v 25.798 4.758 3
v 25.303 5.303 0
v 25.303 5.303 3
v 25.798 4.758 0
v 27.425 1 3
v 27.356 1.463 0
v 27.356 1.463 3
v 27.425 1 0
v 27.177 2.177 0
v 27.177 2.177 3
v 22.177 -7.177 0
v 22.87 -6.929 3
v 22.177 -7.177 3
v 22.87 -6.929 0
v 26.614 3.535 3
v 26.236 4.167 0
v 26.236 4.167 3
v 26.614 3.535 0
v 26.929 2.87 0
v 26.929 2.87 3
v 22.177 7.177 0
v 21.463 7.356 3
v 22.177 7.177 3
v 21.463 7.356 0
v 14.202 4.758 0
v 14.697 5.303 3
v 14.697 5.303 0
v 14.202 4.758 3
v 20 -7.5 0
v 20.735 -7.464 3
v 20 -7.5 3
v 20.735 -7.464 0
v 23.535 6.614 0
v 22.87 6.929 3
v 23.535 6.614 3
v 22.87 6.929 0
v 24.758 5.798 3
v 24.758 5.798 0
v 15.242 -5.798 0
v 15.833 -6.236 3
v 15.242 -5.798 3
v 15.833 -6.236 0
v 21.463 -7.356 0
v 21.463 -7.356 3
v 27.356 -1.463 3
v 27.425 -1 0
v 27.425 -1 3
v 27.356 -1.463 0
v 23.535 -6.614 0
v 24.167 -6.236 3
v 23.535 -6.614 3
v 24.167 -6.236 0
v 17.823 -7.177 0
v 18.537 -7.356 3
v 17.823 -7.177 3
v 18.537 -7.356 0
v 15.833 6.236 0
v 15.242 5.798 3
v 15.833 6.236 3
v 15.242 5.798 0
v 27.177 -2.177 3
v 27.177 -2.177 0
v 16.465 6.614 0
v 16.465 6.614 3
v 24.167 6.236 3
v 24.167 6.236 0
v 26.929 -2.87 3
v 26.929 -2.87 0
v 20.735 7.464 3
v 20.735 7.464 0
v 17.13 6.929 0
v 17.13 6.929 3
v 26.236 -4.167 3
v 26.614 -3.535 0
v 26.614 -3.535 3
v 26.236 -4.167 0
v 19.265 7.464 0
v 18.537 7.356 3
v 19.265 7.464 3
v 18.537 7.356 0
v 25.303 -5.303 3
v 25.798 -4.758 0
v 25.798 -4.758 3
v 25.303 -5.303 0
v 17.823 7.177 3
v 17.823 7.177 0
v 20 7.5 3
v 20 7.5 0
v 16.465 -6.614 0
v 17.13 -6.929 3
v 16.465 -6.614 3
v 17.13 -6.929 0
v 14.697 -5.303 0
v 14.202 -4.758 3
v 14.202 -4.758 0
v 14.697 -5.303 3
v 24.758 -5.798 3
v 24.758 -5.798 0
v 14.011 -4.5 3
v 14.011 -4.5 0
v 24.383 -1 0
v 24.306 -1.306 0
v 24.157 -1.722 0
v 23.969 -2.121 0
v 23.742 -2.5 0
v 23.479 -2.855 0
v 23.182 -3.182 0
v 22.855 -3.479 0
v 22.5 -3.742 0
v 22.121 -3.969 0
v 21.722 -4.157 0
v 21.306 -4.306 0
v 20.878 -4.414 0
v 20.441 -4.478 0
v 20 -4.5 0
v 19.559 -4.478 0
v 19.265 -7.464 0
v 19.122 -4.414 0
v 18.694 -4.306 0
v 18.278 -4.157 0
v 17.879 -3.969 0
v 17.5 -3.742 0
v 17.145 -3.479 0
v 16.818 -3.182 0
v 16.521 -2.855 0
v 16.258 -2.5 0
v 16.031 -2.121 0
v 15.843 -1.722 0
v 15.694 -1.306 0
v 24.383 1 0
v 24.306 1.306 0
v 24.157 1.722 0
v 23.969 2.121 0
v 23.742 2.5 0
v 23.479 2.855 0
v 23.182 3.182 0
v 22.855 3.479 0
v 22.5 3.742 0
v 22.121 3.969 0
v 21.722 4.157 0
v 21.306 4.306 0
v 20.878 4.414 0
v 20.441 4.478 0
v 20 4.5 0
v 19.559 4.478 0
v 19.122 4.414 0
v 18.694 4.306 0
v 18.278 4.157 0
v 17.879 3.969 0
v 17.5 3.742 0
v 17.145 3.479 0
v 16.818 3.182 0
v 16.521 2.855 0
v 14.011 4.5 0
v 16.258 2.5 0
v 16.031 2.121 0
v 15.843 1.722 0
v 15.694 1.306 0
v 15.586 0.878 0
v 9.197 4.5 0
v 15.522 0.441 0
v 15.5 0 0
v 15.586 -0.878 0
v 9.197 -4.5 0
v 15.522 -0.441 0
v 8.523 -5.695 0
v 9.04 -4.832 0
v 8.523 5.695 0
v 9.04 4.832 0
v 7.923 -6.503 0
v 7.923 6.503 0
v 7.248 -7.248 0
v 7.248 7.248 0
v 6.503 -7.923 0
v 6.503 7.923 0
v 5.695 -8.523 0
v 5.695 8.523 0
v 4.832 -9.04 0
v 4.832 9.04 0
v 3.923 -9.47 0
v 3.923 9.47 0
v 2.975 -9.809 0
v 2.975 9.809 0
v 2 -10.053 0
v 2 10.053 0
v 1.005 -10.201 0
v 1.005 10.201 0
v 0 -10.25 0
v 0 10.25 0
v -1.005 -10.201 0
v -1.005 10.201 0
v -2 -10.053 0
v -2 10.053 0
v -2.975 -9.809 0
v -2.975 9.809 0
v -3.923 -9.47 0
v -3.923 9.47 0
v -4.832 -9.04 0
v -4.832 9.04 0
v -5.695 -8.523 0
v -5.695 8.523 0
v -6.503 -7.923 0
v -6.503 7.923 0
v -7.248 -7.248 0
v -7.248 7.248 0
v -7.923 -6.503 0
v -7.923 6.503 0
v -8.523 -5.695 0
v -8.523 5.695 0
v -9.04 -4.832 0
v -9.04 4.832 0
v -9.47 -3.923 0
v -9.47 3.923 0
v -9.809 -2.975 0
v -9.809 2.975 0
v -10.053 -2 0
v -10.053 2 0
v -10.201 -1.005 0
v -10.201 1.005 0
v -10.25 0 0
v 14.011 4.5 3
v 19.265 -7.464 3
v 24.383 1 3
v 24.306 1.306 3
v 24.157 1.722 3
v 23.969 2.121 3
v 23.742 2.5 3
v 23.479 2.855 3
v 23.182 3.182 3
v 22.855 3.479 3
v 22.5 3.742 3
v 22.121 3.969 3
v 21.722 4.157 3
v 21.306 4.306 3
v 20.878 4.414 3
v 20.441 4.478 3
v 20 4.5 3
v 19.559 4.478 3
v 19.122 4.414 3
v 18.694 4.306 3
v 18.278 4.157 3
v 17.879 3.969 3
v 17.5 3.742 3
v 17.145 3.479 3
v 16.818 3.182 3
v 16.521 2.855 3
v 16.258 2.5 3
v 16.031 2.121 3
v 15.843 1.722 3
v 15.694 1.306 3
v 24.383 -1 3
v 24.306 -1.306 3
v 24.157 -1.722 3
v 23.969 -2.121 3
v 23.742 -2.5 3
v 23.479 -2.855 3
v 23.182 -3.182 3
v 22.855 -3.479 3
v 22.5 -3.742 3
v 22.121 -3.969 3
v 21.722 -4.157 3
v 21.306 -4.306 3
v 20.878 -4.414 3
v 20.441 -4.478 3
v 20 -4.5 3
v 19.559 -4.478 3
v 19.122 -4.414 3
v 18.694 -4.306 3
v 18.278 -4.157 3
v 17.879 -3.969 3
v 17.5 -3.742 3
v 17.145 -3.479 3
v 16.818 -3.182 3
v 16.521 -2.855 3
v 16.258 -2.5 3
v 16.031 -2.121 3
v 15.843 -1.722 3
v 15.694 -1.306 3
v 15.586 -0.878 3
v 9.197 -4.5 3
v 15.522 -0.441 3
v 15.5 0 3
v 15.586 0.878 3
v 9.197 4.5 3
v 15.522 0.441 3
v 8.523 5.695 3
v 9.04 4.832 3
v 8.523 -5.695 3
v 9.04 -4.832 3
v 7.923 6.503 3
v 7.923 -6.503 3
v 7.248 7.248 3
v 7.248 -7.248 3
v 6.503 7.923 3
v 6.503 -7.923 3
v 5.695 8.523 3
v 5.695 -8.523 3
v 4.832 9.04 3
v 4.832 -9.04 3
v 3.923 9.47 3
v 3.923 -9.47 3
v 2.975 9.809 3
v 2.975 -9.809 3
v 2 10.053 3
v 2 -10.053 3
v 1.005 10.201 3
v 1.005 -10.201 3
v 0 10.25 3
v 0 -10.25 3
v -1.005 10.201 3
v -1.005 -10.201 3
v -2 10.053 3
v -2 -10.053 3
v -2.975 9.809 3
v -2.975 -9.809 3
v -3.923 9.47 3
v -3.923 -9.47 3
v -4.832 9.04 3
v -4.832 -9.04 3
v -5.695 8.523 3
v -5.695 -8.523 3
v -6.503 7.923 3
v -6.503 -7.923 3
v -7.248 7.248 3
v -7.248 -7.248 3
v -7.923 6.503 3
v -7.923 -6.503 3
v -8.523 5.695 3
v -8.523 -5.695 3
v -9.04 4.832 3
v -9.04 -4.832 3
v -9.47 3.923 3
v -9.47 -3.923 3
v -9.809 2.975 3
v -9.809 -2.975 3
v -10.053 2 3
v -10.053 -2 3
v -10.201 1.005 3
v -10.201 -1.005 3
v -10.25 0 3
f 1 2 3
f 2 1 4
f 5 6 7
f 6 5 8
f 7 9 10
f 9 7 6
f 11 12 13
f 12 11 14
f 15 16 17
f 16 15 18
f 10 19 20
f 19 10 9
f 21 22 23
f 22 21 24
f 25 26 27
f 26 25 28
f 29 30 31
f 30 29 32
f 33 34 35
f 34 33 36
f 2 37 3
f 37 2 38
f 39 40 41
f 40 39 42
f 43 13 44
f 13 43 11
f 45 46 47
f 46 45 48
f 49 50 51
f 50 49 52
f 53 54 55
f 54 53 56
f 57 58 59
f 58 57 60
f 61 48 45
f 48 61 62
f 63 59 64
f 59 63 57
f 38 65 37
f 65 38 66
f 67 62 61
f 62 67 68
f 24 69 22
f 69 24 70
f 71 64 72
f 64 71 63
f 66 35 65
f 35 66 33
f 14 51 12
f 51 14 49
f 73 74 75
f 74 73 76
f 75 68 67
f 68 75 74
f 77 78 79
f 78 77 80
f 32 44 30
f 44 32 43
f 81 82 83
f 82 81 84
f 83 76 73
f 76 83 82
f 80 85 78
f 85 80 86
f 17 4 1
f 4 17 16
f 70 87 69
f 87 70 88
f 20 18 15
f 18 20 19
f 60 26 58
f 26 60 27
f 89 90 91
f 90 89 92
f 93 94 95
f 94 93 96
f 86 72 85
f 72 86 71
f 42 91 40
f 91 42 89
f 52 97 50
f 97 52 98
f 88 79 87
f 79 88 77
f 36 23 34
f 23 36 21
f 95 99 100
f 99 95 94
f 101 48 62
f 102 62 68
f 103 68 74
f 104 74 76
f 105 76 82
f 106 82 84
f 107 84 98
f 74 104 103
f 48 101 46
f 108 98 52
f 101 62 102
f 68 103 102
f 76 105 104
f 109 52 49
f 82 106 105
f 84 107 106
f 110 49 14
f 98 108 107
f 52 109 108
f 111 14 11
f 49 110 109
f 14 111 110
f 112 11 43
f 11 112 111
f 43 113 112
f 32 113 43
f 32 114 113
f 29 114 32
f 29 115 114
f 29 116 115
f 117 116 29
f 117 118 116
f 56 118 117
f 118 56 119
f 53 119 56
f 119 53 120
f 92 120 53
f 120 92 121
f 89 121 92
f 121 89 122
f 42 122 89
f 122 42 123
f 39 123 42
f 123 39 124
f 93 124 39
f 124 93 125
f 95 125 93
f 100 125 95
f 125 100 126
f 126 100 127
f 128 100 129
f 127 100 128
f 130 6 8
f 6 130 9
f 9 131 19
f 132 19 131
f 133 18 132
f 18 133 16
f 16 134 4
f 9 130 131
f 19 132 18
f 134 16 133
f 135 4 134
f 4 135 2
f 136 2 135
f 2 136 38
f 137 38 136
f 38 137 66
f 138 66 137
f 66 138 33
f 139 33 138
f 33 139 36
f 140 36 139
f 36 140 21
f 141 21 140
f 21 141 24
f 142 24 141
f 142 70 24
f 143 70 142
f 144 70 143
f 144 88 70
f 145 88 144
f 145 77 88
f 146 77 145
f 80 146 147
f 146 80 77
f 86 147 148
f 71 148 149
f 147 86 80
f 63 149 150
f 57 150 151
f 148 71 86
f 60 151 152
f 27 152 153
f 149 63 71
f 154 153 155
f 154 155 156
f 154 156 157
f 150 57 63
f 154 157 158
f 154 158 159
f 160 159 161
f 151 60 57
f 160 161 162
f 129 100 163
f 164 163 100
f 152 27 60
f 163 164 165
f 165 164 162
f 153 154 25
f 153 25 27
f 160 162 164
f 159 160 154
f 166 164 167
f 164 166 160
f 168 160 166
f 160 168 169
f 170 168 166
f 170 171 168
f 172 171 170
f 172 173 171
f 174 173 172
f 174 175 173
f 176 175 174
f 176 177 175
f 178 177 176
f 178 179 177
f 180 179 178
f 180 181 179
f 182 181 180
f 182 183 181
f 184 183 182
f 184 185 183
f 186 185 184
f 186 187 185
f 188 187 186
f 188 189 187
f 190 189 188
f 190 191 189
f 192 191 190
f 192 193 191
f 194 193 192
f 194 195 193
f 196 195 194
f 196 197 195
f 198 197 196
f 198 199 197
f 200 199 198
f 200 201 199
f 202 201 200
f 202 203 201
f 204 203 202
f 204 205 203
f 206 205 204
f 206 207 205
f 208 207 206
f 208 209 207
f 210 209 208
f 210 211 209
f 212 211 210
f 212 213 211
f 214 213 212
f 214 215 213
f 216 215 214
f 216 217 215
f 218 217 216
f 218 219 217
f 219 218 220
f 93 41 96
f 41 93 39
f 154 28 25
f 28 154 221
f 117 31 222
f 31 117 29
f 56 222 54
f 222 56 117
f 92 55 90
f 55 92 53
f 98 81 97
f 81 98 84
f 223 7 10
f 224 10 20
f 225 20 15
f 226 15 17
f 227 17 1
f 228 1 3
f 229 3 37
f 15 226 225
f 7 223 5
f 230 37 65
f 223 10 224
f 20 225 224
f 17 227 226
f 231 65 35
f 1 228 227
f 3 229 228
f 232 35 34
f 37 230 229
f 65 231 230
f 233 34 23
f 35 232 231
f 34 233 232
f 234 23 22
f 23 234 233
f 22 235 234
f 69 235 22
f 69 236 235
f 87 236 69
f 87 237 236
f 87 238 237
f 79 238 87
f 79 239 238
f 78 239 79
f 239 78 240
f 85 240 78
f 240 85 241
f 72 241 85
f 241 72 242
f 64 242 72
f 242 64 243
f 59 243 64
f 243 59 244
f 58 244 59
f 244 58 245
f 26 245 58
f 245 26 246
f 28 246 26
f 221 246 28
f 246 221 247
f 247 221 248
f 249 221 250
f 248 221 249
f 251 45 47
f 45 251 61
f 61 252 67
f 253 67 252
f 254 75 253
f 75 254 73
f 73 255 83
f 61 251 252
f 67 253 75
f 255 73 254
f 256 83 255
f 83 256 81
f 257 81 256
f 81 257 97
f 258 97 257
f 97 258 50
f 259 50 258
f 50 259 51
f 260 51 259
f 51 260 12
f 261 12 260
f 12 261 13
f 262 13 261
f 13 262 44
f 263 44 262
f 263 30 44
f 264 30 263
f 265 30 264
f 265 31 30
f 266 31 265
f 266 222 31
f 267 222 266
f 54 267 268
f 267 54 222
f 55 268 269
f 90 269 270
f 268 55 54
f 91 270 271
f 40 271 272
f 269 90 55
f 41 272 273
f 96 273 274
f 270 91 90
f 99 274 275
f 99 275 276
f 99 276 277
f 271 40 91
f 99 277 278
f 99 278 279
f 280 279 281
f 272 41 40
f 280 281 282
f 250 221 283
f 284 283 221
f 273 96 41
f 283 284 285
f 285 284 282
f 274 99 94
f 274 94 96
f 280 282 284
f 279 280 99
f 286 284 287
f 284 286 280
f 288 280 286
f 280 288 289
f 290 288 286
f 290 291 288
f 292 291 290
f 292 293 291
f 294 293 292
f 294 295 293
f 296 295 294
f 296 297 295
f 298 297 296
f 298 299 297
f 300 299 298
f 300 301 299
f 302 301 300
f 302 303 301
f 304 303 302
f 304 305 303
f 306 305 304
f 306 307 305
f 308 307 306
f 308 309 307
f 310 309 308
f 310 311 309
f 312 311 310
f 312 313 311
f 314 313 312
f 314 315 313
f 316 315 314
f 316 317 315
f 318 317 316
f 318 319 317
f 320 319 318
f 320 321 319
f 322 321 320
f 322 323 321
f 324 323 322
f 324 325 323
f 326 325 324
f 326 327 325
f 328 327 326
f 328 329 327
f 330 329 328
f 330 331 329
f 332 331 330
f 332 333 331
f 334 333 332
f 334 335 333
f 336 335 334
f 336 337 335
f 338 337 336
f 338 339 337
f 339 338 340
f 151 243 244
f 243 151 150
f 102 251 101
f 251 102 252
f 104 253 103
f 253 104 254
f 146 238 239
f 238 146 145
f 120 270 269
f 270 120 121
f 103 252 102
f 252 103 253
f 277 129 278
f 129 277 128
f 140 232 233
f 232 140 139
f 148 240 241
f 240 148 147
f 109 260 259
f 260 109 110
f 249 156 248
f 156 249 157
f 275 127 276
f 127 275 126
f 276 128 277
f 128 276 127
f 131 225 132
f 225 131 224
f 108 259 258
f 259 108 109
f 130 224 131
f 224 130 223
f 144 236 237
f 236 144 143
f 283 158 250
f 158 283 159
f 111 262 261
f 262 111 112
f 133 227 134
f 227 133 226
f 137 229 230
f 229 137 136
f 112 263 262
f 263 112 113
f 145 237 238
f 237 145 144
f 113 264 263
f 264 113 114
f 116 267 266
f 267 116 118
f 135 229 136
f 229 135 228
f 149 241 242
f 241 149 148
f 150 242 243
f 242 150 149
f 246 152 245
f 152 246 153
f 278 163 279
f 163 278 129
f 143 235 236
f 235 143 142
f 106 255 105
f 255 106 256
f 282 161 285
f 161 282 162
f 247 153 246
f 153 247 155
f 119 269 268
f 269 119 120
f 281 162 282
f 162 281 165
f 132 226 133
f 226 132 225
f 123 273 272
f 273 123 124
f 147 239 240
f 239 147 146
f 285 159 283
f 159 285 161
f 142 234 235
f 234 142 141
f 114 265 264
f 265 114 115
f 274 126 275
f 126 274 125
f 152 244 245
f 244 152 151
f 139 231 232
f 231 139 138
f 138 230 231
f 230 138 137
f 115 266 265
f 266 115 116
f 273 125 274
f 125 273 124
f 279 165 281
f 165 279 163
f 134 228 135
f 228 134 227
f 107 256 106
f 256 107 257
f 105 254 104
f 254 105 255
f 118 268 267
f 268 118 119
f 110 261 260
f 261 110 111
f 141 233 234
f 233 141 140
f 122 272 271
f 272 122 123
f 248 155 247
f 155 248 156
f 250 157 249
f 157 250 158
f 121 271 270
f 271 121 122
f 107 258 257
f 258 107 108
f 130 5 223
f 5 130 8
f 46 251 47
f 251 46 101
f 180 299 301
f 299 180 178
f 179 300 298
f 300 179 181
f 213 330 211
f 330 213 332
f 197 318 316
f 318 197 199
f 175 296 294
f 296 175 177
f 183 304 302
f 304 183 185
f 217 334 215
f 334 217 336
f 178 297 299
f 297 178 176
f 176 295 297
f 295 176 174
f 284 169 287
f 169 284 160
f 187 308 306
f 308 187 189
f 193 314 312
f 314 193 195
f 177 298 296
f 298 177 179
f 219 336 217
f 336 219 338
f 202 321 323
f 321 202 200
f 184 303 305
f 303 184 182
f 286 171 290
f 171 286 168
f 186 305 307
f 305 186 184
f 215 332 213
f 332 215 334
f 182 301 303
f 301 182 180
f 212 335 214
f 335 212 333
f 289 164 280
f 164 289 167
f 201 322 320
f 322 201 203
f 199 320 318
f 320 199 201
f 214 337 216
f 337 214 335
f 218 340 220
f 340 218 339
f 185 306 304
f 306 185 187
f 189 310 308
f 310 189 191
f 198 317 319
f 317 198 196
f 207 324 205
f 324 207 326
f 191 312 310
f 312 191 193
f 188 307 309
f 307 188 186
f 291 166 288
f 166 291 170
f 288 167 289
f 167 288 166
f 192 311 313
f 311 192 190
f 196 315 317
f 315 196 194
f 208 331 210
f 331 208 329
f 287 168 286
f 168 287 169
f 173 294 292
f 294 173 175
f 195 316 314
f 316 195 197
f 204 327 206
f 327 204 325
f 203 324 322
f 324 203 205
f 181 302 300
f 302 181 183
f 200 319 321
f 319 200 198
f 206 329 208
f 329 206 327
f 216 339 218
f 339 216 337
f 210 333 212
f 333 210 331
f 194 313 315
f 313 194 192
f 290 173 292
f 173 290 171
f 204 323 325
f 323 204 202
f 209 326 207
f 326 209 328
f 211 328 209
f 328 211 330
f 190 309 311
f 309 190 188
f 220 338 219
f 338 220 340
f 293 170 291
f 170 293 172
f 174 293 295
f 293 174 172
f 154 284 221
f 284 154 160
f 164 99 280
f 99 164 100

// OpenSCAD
thickness = 3;

$fn = 64;

union() {
  // Main coin part
  cylinder(d=20.5, h=thickness);

  // Bar between coin and grip
  translate([6,-4.5,0]) cube([9,9,thickness]);

  // Grip
  translate([20,0,0]) difference() {
    cylinder(d=15, h=thickness);
    translate([0,0,-1]) cylinder(d=9, h=thickness+2);

    // Cut out of ring
    translate([3.5,-1,-1]) cube([5,2,thickness+2]);
  }
}
